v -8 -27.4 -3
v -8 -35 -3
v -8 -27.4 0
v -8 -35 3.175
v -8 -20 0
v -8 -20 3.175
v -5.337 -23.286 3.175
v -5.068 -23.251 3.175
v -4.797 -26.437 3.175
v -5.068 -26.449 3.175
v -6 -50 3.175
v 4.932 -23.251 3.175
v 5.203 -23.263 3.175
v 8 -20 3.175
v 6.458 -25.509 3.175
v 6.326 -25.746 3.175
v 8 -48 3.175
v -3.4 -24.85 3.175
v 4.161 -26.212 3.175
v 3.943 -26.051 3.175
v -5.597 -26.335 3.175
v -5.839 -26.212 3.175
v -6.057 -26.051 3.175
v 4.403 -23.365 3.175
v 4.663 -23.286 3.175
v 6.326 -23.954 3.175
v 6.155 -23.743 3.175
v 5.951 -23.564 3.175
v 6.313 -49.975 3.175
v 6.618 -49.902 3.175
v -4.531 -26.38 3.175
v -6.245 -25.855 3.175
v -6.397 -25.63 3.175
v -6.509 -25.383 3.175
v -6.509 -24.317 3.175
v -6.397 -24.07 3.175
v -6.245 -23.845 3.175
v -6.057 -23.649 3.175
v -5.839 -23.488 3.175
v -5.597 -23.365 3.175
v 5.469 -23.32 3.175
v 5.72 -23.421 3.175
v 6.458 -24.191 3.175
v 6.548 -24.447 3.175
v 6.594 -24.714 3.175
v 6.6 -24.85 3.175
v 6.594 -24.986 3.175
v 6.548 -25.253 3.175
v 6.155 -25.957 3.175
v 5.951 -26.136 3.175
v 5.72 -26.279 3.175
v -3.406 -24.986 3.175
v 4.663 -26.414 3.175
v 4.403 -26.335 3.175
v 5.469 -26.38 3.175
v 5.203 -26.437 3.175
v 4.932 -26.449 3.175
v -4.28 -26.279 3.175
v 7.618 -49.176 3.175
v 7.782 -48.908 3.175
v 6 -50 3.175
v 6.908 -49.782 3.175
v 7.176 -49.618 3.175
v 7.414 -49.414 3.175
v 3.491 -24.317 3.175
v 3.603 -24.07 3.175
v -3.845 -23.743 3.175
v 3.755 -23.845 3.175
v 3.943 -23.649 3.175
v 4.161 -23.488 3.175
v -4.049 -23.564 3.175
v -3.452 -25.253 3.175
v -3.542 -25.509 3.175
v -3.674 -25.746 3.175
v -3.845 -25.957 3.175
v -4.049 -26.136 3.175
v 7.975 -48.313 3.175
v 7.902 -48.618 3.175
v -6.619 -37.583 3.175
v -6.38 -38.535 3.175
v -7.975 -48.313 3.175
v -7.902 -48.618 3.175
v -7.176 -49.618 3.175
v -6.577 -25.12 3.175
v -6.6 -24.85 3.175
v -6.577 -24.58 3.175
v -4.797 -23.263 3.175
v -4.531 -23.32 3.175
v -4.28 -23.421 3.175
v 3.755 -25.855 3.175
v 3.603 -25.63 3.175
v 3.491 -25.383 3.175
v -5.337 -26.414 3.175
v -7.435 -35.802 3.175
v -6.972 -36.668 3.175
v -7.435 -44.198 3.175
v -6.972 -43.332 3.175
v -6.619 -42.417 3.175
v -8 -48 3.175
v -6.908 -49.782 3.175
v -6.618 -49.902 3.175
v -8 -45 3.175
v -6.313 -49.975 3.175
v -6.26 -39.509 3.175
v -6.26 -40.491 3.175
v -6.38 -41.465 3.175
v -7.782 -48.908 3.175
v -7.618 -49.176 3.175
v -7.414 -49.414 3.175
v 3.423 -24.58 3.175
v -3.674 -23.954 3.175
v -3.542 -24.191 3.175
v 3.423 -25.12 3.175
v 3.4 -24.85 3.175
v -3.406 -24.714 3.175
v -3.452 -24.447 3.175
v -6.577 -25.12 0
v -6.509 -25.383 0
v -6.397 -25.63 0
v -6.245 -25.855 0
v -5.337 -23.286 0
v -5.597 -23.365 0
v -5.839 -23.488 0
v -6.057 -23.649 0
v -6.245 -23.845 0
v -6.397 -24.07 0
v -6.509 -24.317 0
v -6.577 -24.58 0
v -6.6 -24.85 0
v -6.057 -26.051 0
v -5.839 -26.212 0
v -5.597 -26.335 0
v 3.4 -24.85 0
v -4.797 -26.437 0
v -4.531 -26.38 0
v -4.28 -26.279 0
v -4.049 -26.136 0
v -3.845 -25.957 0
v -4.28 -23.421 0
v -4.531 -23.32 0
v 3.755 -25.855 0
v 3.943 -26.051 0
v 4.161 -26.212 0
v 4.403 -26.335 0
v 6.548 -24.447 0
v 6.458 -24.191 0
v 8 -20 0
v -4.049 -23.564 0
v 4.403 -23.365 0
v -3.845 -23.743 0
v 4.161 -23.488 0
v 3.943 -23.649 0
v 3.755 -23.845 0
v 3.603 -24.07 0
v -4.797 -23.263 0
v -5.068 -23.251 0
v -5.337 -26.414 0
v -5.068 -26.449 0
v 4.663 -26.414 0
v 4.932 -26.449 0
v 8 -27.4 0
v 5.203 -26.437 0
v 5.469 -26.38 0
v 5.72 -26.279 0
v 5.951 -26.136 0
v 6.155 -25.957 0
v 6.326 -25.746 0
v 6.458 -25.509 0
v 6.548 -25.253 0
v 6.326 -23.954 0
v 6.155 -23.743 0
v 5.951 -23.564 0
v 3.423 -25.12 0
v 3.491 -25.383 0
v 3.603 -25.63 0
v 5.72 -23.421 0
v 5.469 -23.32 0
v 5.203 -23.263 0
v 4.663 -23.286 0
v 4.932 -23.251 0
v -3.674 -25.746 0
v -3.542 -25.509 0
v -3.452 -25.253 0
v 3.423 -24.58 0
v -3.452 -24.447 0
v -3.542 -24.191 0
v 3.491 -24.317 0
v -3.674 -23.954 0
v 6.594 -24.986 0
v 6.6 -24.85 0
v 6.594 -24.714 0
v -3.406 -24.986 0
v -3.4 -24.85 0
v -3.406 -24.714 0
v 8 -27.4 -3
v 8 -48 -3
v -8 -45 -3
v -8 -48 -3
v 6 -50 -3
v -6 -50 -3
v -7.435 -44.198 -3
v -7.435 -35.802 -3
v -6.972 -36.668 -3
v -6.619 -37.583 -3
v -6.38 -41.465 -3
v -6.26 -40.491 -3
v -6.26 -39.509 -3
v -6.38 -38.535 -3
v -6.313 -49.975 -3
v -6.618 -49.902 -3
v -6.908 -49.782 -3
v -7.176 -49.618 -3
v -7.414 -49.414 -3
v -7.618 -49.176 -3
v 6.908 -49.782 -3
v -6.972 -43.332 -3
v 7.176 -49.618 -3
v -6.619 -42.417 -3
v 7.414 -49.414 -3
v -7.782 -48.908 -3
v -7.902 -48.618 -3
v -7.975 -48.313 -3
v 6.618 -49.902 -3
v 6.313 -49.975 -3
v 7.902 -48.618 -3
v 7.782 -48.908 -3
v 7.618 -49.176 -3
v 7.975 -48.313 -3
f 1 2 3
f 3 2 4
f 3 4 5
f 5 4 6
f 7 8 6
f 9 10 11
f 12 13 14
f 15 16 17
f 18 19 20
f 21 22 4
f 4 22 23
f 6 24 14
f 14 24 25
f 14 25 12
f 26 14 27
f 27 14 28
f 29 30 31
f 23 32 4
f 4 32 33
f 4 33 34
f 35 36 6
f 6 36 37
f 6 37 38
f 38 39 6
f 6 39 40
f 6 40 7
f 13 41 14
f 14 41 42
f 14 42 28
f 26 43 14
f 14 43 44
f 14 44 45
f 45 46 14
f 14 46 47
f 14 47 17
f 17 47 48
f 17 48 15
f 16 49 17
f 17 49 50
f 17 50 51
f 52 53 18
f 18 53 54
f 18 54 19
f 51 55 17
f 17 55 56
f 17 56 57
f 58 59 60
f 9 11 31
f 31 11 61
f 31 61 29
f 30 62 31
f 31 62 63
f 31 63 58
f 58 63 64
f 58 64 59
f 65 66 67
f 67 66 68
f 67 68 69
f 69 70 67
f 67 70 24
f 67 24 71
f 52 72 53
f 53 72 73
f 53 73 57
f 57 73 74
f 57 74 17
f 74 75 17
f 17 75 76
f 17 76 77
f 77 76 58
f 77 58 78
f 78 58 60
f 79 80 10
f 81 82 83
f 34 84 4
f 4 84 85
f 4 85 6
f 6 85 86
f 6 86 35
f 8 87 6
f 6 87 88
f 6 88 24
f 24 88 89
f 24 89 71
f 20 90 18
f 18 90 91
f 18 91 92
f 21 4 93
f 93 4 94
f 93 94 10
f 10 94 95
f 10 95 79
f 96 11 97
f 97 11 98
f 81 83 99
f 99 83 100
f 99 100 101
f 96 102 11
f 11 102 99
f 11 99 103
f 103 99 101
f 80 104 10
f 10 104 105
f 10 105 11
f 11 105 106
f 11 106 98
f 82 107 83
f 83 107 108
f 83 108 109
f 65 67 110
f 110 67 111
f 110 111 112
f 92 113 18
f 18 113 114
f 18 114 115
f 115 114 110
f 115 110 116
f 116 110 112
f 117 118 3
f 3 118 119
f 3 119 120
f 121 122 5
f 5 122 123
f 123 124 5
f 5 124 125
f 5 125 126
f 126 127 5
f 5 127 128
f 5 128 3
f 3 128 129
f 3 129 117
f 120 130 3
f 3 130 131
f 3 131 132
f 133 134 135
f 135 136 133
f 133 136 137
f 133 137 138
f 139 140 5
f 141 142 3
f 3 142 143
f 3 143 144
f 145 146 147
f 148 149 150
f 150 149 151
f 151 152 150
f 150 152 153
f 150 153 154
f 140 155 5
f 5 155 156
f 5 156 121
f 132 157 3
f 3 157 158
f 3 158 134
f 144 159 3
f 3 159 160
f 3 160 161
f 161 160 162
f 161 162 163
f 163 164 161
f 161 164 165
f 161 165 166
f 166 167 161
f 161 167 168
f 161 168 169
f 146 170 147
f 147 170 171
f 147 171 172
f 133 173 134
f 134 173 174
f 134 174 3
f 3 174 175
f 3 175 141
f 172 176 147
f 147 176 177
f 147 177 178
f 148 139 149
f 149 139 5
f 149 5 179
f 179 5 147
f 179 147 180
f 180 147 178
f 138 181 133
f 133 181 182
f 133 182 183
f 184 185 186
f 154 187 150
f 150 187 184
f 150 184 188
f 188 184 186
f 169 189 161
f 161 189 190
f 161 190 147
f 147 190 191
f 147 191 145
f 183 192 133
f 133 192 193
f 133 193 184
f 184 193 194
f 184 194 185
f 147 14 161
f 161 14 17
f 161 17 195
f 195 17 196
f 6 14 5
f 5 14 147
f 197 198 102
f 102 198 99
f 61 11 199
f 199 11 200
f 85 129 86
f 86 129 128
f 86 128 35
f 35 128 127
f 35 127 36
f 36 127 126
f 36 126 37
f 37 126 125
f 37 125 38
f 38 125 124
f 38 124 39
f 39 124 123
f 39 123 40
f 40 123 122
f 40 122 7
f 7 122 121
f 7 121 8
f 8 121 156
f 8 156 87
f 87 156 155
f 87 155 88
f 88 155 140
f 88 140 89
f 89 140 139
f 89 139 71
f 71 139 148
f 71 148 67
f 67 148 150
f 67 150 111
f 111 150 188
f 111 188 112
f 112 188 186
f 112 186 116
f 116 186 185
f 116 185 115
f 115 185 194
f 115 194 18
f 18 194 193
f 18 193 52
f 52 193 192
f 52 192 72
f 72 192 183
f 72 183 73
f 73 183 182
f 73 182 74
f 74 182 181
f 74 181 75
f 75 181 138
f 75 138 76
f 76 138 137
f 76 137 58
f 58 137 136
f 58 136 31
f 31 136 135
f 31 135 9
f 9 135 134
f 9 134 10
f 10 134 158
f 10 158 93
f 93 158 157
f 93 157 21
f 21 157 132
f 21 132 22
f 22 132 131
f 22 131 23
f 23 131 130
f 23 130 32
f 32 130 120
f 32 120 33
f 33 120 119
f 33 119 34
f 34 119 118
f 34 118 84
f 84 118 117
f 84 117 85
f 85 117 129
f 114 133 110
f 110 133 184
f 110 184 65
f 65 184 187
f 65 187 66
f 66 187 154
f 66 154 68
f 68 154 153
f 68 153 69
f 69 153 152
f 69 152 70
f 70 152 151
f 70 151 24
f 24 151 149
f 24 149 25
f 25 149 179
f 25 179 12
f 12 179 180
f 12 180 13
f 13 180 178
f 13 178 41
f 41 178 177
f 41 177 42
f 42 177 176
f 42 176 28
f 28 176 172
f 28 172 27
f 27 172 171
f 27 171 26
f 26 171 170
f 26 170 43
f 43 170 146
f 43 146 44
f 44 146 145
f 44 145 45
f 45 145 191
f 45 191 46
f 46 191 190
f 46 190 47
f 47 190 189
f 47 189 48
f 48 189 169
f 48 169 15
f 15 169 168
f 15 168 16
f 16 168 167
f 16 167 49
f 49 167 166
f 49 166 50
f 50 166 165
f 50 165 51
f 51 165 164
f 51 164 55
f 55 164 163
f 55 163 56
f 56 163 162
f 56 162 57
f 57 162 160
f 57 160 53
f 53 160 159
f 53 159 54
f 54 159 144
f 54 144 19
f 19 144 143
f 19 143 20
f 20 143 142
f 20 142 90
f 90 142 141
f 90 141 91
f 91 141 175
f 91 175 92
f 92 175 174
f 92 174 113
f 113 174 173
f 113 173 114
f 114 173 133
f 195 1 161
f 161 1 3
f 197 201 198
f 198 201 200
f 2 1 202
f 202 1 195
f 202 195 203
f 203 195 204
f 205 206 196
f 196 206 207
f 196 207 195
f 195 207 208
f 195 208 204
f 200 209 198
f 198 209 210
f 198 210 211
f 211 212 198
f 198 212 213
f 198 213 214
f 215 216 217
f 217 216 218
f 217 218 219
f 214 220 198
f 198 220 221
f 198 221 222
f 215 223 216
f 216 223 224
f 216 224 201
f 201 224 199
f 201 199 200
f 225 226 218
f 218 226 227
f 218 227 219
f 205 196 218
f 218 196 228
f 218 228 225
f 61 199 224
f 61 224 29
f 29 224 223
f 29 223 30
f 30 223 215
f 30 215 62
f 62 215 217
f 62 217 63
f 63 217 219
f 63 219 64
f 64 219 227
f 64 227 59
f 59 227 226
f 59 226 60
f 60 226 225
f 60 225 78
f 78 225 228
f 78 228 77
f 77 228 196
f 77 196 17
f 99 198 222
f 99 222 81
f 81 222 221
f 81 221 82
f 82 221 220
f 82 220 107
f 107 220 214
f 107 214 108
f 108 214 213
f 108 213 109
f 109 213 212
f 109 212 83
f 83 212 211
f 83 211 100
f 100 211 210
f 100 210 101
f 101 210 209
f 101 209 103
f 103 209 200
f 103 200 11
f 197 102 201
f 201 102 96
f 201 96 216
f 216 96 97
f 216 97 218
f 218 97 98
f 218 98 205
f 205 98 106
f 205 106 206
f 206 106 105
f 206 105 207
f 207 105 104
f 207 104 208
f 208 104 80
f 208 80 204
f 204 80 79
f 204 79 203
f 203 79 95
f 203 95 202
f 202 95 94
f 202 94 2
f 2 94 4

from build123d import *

# Parameters (mm, degrees)
SKETCH1_W           = 16
SKETCH1_H           = 30
SKETCH1_R           = 1.6
BOSS_EXTRUDE1_DEPTH = 3.175
SKETCH3_W           = 16
SKETCH3_H           = 22.6
BOSS_EXTRUDE2_DEPTH = 3
FILLET1_R           = 2
CUT_EXTRUDE1_DEPTH  = 52.011083355


with BuildPart() as part:
    # Sketch1 → Boss-Extrude1 (new body)
    with BuildSketch(Plane.XY):
        with Locations((0, -35)):
            Rectangle(SKETCH1_W, SKETCH1_H)
        with Locations((5, -24.85)):
            Circle(SKETCH1_R, mode=Mode.SUBTRACT)
        with Locations((-5, -24.85)):
            Circle(SKETCH1_R, mode=Mode.SUBTRACT)
    extrude(amount=BOSS_EXTRUDE1_DEPTH)

    # Sketch3 → Boss-Extrude2 (add)
    with BuildSketch(Plane(origin=(0, 0, 0), x_dir=(-1, 0, 0), z_dir=(0, 0, -1))):
        with Locations((0, -38.7)):
            Rectangle(SKETCH3_W, SKETCH3_H)
    extrude(amount=BOSS_EXTRUDE2_DEPTH)

    # Fillet1
    fillet1_edges = [part.edges().sort_by_distance(p)[0] for p in [
        (8, -50, 0.0875),
        (-8, -50, 0.0875),
    ]]
    fillet(fillet1_edges, radius=FILLET1_R)

    # Sketch4 → Cut-Extrude1 (cut, through all)
    with BuildSketch(Plane.XY.offset(3.175)):
        with BuildLine():
            Line((-8, -45), (-8, -35))
            ThreePointArc((-8, -35), (-6.244997998, -40), (-8, -45))
        make_face()
    extrude(amount=-CUT_EXTRUDE1_DEPTH, mode=Mode.SUBTRACT)


solid = part.part
